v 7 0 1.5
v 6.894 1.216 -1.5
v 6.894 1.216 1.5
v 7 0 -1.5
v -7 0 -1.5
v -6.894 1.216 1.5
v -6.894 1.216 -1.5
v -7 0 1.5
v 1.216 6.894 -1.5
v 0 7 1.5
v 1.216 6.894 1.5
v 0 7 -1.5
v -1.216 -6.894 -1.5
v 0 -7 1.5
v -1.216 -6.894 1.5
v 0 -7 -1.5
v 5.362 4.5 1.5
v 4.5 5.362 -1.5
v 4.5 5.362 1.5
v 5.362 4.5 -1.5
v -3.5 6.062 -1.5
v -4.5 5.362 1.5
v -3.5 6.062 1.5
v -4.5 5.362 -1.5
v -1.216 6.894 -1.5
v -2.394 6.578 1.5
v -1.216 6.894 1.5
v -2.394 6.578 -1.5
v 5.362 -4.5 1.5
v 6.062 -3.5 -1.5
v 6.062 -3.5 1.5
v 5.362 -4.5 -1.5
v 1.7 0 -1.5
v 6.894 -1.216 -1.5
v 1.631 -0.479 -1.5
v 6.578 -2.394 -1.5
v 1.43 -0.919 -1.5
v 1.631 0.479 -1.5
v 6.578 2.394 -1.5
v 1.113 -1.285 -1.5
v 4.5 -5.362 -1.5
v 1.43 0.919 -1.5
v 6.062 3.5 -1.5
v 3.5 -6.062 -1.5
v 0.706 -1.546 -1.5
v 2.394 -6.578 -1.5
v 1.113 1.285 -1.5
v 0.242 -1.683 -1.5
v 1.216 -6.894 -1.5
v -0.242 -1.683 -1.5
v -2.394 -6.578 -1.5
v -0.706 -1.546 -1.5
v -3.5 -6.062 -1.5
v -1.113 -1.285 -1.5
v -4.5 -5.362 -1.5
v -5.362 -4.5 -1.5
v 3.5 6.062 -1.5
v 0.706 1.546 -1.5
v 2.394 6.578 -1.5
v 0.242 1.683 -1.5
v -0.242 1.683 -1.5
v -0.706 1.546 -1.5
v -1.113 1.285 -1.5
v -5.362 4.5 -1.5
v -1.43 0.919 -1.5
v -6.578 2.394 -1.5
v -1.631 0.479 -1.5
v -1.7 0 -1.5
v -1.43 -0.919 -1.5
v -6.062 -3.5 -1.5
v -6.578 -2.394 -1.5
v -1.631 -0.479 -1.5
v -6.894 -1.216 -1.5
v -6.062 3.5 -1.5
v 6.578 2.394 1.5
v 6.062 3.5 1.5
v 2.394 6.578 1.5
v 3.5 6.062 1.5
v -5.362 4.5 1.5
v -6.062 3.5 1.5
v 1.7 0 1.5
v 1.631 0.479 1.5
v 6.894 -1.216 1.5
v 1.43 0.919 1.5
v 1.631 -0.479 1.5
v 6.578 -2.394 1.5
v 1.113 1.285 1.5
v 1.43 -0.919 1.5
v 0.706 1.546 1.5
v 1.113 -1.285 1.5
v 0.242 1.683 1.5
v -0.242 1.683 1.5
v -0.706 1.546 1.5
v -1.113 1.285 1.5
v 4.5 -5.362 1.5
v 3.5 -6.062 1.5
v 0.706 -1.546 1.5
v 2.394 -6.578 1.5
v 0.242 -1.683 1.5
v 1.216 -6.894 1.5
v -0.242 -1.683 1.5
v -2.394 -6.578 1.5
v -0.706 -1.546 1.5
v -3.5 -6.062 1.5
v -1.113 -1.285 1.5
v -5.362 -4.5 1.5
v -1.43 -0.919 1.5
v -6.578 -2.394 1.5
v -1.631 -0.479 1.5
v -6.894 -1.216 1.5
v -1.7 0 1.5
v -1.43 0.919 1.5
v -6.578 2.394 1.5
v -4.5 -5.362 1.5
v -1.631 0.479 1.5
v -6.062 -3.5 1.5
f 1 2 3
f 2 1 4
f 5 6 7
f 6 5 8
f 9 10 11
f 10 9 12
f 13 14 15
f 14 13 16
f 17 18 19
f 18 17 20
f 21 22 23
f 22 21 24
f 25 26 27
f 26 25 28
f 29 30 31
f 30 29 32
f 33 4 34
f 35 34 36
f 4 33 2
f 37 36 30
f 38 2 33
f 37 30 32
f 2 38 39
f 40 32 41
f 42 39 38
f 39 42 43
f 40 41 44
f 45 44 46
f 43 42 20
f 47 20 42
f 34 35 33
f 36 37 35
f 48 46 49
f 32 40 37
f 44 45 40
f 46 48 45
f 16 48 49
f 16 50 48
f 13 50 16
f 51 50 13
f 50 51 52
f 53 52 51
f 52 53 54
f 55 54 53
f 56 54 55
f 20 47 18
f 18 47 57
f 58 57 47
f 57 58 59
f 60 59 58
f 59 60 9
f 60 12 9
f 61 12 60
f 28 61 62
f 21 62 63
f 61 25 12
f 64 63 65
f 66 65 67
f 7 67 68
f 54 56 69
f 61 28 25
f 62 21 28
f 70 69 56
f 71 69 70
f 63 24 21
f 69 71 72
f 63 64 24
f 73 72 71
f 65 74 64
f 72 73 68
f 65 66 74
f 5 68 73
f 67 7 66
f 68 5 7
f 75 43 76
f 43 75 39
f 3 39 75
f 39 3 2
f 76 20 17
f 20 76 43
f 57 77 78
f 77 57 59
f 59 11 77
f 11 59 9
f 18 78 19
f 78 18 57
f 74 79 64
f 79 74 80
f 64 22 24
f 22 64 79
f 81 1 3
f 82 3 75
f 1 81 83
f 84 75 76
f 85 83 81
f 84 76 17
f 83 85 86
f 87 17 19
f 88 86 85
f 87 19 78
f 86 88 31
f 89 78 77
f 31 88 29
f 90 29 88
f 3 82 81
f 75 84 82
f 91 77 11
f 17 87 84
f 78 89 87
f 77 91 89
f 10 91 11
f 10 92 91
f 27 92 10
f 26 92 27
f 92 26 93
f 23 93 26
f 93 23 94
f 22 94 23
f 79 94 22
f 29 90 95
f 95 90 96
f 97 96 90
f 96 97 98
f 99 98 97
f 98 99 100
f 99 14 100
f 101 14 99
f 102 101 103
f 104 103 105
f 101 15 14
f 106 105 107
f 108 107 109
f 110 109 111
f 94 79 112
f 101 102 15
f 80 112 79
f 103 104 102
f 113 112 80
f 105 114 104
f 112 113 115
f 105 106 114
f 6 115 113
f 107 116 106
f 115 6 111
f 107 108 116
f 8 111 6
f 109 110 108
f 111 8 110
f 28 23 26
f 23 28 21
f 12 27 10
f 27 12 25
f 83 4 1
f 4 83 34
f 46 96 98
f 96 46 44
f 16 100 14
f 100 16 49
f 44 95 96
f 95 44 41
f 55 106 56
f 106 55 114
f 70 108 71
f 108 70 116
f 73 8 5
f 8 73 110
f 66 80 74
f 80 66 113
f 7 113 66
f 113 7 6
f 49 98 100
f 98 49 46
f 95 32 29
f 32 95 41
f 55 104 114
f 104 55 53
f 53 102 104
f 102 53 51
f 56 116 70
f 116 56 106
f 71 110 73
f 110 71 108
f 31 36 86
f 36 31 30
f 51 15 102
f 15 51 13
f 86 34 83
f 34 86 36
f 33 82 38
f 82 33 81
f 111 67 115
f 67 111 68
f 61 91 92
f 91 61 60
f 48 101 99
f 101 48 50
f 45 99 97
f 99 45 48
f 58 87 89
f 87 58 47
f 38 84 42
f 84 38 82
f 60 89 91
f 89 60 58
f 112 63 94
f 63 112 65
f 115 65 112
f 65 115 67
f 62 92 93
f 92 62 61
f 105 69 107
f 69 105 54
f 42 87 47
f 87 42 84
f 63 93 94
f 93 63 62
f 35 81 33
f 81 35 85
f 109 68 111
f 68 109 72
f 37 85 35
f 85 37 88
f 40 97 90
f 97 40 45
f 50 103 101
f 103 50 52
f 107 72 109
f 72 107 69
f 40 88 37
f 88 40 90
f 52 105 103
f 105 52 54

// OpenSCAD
$fa=10; $fs=0.5;

difference(){
    
       cylinder(h=3, r=7, center=true);
       cylinder(h=3.01, r=1.7, center=true); 
}
